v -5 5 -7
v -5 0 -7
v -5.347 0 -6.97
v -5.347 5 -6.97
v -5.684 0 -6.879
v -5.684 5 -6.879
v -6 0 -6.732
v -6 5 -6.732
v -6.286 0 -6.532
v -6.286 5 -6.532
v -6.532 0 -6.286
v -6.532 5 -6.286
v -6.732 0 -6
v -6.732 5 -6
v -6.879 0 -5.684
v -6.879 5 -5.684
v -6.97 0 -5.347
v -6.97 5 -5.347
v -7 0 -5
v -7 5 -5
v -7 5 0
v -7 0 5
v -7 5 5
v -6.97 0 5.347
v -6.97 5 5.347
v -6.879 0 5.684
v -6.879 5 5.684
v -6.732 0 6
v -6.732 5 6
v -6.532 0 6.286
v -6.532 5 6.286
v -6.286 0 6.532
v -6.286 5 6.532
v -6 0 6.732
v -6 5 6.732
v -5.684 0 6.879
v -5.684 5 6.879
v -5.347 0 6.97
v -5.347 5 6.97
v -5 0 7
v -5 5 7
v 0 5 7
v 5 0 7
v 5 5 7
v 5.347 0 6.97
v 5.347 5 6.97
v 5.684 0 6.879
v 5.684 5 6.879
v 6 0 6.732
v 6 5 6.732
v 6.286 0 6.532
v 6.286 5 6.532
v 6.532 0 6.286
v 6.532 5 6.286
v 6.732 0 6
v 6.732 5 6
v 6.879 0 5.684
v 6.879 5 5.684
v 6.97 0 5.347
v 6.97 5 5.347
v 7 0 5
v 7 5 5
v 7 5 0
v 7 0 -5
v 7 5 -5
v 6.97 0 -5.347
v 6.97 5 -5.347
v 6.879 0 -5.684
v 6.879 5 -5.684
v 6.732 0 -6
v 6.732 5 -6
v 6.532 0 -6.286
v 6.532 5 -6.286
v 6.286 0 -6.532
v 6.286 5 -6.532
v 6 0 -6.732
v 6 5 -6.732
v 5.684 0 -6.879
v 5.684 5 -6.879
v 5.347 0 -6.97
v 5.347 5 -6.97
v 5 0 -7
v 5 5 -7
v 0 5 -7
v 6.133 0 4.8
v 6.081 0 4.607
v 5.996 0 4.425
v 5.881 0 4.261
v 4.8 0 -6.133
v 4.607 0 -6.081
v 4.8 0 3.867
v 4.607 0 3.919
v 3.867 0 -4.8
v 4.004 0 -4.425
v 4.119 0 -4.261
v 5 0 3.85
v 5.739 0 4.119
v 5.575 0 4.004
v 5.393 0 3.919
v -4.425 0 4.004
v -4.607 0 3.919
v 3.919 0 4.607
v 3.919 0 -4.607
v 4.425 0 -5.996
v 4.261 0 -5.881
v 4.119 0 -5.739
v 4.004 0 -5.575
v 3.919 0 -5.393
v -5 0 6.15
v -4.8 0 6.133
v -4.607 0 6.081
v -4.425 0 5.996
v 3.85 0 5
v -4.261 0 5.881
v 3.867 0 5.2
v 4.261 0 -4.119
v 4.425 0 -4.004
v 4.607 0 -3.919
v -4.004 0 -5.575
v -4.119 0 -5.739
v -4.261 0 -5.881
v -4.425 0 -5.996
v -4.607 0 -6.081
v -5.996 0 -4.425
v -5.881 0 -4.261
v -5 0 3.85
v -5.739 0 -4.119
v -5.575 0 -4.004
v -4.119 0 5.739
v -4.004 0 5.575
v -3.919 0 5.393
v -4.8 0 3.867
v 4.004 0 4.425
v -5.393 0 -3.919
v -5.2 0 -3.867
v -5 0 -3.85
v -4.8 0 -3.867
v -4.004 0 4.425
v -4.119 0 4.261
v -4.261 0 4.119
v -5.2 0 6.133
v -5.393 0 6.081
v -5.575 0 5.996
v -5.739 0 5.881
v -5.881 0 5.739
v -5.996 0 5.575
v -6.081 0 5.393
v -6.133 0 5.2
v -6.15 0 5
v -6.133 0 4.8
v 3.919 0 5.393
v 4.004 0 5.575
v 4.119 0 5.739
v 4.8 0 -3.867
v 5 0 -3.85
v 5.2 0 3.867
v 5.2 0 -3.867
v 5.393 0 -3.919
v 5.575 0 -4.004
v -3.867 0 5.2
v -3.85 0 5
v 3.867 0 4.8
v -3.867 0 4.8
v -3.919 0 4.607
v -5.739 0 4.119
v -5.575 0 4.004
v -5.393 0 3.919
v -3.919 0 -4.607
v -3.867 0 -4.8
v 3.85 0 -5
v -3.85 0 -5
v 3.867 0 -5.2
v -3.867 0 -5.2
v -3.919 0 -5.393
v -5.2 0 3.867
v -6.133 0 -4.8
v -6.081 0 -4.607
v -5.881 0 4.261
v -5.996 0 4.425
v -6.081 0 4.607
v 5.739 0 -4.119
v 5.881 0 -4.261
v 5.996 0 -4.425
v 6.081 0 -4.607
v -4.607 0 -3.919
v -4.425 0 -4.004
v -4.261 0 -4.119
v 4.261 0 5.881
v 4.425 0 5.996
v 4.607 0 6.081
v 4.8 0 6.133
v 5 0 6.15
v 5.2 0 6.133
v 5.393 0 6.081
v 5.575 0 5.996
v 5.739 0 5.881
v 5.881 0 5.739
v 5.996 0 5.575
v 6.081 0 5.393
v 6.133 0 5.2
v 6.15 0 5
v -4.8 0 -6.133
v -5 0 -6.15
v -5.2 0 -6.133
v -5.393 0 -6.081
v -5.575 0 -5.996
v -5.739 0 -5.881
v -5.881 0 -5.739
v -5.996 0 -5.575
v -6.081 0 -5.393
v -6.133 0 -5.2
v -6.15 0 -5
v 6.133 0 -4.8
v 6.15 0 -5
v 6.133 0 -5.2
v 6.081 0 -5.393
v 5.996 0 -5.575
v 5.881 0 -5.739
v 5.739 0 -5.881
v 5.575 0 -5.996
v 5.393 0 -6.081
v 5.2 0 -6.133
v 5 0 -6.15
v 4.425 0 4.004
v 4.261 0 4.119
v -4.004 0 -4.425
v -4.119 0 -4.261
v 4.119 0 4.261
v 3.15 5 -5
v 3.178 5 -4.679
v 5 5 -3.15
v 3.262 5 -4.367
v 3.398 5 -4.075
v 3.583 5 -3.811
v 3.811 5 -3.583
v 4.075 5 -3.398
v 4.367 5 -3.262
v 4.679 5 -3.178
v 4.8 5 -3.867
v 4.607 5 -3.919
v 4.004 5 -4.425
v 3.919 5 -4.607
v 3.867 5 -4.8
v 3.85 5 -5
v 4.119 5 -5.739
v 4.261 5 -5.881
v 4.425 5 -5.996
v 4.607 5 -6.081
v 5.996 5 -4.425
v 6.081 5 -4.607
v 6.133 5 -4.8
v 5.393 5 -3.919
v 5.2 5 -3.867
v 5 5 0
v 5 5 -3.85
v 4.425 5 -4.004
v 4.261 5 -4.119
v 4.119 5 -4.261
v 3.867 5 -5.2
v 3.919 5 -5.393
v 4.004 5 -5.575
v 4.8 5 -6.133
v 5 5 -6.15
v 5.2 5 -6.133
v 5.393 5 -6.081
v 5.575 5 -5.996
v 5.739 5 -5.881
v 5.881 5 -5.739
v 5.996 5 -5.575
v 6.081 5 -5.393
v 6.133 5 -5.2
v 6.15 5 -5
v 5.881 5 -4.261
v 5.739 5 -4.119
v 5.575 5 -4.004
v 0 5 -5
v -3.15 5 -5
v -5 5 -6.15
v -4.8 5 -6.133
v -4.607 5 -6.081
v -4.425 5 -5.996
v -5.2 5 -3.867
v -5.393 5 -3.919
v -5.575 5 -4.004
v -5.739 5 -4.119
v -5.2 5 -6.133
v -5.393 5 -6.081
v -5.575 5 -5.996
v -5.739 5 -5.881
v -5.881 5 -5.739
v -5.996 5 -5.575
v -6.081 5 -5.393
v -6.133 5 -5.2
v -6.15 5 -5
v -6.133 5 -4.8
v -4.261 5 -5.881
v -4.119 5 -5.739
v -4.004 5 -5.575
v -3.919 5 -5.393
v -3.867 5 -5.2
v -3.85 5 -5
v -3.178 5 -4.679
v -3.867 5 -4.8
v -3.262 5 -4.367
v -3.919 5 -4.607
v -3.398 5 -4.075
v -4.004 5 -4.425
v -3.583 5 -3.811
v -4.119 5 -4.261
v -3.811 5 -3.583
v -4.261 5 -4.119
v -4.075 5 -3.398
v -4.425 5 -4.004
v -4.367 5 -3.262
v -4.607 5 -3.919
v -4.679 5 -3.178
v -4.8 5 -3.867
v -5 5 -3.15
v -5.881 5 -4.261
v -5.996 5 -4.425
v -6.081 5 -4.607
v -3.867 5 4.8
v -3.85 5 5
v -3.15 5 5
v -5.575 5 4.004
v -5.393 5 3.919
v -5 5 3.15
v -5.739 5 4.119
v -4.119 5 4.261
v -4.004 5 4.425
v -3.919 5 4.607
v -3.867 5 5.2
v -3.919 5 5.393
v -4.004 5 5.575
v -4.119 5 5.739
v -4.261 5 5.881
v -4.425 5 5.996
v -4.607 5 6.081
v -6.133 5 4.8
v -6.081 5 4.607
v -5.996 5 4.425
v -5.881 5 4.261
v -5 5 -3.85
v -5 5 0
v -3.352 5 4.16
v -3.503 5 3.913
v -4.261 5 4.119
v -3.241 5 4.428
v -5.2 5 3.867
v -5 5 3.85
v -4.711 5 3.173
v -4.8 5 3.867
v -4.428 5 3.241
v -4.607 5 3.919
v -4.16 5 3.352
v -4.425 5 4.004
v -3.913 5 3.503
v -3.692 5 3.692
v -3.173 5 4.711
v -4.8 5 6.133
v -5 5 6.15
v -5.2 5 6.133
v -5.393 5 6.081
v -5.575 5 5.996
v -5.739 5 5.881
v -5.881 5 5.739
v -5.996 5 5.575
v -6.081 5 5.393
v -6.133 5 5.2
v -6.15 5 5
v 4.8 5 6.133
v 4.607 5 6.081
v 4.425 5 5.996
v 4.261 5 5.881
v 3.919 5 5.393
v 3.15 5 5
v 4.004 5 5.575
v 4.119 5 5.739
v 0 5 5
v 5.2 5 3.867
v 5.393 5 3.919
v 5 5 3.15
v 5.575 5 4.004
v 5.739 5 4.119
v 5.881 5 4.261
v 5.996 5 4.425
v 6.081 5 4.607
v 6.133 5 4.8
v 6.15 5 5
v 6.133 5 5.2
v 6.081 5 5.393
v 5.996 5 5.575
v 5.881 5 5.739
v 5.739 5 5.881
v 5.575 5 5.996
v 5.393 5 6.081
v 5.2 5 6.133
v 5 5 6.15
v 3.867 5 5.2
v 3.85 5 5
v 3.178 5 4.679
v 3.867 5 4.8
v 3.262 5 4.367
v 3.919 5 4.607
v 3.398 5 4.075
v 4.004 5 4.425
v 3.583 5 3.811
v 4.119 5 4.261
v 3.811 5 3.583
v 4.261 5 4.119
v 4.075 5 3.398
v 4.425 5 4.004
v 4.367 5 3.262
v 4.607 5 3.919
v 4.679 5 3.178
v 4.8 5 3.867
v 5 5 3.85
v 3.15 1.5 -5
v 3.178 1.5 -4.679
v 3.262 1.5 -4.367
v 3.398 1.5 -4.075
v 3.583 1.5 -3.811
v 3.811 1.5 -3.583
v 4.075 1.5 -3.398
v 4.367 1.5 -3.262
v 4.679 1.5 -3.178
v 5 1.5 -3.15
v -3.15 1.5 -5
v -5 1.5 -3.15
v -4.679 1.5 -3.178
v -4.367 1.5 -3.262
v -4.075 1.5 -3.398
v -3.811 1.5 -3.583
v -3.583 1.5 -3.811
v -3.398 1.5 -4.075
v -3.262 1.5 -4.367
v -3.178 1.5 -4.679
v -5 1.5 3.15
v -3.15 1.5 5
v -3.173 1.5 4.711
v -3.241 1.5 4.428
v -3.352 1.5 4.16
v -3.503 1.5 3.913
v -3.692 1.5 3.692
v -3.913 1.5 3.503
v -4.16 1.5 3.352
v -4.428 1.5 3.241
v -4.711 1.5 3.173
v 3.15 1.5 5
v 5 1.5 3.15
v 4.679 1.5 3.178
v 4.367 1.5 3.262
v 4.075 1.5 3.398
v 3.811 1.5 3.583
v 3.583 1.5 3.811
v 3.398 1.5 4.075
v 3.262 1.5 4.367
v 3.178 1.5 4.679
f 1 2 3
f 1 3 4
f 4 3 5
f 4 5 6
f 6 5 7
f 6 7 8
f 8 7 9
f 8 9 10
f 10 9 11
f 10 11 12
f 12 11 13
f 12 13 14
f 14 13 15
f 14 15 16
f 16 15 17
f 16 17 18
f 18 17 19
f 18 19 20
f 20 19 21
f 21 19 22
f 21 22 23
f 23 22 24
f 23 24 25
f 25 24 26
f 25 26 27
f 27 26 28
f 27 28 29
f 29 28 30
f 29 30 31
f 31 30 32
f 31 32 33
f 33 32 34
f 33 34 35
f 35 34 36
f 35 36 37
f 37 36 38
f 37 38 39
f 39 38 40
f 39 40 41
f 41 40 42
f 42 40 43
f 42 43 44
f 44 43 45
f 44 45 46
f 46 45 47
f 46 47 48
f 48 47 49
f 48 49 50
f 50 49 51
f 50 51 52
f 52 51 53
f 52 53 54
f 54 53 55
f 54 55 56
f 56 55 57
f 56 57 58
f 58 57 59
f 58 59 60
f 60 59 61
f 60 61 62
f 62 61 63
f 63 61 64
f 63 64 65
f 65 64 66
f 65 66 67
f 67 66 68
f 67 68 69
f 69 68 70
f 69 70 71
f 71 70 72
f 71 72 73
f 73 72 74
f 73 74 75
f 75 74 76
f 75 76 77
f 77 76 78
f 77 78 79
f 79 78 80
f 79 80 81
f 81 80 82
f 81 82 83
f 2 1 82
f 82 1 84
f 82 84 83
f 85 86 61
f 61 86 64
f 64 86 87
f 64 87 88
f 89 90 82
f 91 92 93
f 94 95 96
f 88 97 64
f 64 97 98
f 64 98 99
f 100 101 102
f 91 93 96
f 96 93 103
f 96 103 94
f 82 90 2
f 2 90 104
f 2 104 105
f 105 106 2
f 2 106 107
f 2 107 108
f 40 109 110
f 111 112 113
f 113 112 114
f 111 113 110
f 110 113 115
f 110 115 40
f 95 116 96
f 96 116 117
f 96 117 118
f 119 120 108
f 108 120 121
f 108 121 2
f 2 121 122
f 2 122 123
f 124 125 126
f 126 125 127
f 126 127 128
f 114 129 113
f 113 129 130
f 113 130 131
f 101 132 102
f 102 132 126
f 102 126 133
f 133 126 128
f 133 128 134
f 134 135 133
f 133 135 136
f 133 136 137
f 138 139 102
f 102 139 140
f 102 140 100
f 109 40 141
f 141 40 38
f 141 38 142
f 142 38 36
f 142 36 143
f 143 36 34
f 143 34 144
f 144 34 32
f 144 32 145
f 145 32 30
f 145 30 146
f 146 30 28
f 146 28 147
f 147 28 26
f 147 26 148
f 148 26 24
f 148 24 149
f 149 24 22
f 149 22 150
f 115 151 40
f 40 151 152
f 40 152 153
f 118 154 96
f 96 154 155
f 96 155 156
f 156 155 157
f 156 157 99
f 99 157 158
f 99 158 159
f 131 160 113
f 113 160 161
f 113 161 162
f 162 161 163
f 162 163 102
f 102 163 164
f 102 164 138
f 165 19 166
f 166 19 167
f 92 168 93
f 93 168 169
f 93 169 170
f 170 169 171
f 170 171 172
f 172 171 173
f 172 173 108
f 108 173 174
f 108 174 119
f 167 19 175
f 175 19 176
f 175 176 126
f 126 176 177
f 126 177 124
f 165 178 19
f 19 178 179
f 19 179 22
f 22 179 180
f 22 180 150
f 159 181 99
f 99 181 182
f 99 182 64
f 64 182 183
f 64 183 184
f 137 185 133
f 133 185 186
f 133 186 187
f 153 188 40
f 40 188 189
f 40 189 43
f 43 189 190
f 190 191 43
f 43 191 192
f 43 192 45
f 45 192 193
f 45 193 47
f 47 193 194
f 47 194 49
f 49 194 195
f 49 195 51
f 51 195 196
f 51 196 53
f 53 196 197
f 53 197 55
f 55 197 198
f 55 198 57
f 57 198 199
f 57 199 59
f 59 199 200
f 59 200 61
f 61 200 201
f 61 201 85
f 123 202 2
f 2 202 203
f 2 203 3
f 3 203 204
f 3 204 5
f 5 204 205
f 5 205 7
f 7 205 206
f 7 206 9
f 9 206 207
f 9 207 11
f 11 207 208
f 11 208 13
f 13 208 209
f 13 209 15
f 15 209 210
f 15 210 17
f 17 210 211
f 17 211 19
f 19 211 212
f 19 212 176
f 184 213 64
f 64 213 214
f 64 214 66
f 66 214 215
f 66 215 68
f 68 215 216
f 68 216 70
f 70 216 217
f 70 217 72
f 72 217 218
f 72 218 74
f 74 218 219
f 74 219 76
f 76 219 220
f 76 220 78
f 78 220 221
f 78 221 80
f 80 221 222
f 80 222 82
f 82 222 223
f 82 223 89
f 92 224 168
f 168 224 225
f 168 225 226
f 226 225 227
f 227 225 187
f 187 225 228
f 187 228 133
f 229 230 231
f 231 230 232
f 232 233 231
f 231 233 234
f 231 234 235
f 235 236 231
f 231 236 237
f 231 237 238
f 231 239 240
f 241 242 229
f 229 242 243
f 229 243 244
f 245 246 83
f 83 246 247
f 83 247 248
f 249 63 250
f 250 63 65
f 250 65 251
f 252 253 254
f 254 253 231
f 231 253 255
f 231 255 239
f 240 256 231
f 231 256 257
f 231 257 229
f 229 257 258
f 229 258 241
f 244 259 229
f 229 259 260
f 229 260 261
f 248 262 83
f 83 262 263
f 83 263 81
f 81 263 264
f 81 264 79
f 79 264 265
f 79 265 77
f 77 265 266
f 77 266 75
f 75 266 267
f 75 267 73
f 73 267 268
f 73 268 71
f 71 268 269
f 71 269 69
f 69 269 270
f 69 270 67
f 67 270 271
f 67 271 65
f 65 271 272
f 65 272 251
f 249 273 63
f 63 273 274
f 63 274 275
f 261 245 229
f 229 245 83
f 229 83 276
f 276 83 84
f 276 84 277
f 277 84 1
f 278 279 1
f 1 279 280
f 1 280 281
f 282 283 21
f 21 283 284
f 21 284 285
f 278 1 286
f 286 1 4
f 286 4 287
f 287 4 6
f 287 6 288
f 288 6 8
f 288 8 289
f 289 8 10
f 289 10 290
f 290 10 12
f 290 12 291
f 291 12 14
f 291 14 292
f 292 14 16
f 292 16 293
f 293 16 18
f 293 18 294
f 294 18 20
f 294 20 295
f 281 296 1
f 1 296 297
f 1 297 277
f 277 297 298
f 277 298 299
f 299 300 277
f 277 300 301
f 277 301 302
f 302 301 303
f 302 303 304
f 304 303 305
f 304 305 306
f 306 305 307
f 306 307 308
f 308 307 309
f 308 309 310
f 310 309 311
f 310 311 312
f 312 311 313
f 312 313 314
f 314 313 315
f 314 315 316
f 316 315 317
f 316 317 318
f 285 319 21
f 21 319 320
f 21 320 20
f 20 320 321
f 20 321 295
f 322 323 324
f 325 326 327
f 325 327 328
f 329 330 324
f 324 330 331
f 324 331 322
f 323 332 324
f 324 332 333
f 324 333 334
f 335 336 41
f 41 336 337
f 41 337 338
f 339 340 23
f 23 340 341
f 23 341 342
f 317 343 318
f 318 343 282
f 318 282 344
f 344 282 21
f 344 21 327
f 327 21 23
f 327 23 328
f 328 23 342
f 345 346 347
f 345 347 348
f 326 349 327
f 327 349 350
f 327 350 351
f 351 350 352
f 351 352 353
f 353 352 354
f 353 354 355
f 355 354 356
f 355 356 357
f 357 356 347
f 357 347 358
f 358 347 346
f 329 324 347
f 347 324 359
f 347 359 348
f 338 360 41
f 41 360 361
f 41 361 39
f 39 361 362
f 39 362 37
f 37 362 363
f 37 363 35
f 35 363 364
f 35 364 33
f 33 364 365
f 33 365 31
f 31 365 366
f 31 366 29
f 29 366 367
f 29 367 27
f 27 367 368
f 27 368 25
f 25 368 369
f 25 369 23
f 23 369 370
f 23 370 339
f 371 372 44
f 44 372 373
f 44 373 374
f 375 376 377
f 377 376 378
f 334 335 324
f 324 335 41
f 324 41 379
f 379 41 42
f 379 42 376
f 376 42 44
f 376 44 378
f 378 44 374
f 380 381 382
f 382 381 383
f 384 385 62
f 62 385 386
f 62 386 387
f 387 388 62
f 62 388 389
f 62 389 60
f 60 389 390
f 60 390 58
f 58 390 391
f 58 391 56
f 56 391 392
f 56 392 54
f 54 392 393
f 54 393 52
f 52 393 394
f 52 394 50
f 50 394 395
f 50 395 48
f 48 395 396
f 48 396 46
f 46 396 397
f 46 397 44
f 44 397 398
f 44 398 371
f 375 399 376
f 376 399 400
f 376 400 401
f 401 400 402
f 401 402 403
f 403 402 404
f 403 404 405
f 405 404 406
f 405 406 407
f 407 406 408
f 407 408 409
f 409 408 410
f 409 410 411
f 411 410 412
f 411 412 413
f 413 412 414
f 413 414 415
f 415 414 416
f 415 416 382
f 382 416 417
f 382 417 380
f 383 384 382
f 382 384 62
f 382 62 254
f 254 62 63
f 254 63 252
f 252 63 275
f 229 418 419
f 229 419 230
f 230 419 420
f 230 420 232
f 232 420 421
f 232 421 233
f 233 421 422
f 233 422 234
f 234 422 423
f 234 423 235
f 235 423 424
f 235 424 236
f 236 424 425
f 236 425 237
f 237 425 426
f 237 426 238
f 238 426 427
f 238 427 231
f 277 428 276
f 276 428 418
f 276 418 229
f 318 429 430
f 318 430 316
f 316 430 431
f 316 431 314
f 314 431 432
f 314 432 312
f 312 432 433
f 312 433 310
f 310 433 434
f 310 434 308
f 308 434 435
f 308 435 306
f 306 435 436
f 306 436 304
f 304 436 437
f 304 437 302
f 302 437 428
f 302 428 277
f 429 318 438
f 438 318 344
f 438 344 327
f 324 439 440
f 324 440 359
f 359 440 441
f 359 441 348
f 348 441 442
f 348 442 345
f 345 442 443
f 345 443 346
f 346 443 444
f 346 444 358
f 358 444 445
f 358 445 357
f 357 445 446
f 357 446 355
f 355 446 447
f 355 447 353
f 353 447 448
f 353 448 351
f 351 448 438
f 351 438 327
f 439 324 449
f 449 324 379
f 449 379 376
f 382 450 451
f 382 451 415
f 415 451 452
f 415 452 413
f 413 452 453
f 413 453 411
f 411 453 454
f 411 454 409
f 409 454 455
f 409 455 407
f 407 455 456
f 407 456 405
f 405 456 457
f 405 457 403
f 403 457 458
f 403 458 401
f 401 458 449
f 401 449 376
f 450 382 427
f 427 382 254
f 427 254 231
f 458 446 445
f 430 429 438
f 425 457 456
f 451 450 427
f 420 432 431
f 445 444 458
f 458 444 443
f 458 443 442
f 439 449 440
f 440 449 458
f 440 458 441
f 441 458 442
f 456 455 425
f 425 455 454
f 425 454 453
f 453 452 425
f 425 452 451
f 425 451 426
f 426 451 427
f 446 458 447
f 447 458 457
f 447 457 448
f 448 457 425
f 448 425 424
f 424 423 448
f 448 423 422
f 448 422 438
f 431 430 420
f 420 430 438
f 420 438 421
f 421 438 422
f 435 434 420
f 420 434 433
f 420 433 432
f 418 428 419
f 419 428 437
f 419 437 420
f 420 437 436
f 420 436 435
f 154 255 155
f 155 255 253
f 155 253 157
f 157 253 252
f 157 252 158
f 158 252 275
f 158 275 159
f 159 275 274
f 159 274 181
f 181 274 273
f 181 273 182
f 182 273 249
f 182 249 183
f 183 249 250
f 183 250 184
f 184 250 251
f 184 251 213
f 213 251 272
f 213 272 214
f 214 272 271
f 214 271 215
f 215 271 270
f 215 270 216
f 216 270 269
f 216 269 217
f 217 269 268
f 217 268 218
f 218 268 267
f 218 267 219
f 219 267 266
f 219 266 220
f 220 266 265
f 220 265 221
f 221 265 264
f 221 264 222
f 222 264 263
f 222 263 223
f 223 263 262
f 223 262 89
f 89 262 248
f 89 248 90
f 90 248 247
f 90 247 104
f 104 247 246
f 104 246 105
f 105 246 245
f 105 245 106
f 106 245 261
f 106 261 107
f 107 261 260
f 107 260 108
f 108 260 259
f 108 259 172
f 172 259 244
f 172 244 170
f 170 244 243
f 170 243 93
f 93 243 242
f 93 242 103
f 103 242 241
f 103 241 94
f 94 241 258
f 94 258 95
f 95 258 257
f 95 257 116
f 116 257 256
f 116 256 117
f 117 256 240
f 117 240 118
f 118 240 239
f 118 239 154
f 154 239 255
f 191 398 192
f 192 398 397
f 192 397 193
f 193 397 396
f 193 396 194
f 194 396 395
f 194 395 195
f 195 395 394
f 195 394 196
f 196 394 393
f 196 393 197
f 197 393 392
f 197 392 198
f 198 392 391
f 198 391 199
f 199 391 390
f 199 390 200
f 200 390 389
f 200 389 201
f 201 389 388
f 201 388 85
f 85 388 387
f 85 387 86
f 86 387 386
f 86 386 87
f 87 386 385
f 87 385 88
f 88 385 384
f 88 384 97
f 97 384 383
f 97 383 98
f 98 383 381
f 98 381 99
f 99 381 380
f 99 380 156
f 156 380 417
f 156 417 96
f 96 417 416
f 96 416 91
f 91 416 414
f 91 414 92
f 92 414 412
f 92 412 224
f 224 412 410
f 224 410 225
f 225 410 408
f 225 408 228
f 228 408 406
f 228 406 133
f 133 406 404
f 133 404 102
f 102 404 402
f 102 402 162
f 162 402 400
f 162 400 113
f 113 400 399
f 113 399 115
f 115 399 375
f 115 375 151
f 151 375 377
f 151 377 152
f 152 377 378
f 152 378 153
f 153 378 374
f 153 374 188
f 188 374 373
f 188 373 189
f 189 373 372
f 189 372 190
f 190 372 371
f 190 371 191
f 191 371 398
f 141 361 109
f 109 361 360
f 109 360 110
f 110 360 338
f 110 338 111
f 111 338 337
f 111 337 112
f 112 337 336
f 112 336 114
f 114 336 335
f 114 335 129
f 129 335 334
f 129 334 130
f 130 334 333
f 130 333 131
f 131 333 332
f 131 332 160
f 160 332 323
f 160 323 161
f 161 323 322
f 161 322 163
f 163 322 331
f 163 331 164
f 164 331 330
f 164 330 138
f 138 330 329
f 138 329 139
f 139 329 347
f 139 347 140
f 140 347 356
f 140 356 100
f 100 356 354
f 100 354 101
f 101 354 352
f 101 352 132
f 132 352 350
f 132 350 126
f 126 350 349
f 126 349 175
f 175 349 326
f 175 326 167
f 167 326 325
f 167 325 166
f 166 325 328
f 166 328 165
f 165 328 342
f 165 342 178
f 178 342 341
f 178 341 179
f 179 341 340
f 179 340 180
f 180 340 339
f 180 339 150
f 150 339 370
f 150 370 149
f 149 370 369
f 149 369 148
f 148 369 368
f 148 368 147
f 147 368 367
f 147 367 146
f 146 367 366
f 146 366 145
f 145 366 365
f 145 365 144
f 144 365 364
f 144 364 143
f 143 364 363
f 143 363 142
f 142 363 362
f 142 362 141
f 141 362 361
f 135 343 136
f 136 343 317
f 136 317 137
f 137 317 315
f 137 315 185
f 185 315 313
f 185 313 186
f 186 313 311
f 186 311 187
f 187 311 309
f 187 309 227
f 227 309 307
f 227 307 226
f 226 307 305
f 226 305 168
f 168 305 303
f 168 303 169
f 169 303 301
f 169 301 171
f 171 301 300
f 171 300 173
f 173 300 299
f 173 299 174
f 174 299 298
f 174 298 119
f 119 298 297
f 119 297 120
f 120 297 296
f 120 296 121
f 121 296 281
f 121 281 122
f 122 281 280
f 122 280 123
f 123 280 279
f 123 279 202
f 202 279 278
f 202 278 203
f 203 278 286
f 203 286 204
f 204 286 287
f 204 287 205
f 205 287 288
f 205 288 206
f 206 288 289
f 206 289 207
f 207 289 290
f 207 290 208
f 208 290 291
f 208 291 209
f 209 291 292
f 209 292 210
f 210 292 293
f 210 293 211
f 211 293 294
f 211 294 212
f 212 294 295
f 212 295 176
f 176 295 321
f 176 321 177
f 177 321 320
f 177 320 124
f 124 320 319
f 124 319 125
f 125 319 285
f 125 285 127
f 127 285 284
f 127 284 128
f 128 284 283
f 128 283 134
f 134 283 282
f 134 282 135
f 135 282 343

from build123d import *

# Parameters (mm, degrees)
BOSS_EXTRUDE1_DEPTH = 1.5
BOSS_EXTRUDE2_DEPTH = 3.5
SKETCH3_R           = 1.15
CUT_EXTRUDE1_DEPTH  = 12.090536506


with BuildPart() as part:
    # Sketch1 → Boss-Extrude1 (new body)
    with BuildSketch(Plane(origin=(0, 0, 0), x_dir=(1, 0, 0), z_dir=(0, 1, 0))):
        with BuildLine():
            Line((0, 7), (5, 7))
            ThreePointArc((5, 7), (6.414213562, 6.414213562), (7, 5))
            Line((7, 5), (7, 0))
            Line((7, 0), (7, -5))
            ThreePointArc((7, -5), (6.414213562, -6.414213562), (5, -7))
            Line((5, -7), (0, -7))
            Line((0, -7), (-5, -7))
            ThreePointArc((-5, -7), (-6.414213562, -6.414213562), (-7, -5))
            Line((-7, -5), (-7, 0))
            Line((-7, 0), (-7, 5))
            ThreePointArc((-7, 5), (-6.414213562, 6.414213562), (-5, 7))
            Line((-5, 7), (0, 7))
        make_face()
    extrude(amount=BOSS_EXTRUDE1_DEPTH)

    # Sketch2 → Boss-Extrude2 (add)
    with BuildSketch(Plane(origin=(0, 1.5, 0), x_dir=(1, 0, 0), z_dir=(0, 1, 0))):
        with BuildLine():
            Line((0, 7), (5, 7))
            ThreePointArc((5, 7), (6.414213562, 6.414213562), (7, 5))
            Line((7, 5), (7, 0))
            Line((7, 0), (7, -5))
            ThreePointArc((7, -5), (6.414213562, -6.414213562), (5, -7))
            Line((5, -7), (0, -7))
            Line((0, -7), (-5, -7))
            ThreePointArc((-5, -7), (-6.414213562, -6.414213562), (-7, -5))
            Line((-7, -5), (-7, 0))
            Line((-7, 0), (-7, 5))
            ThreePointArc((-7, 5), (-6.414213562, 6.414213562), (-5, 7))
            Line((-5, 7), (0, 7))
        make_face()
        with BuildLine():
            Line((0, 5), (3.15, 5))
            ThreePointArc((3.15, 5), (3.691852455, 3.691852455), (5, 3.15))
            Line((5, 3.15), (5, 0))
            Line((5, 0), (5, -3.15))
            ThreePointArc((5, -3.15), (3.691852455, -3.691852455), (3.15, -5))
            Line((3.15, -5), (0, -5))
            Line((0, -5), (-3.15, -5))
            ThreePointArc((-3.15, -5), (-3.691852455, -3.691852455), (-5, -3.15))
            Line((-5, -3.15), (-5, 0))
            Line((-5, 0), (-5, 3.15))
            ThreePointArc((-5, 3.15), (-3.691852455, 3.691852455), (-3.15, 5))
            Line((-3.15, 5), (0, 5))
        make_face(mode=Mode.SUBTRACT)
    extrude(amount=BOSS_EXTRUDE2_DEPTH)

    # Sketch3 → Cut-Extrude1 (cut, through all)
    with BuildSketch(Plane(origin=(0, 5, 0), x_dir=(1, 0, 0), z_dir=(0, 1, 0))):
        with Locations(Location((5, 5, 0), (0, 0, 270))):
            Circle(SKETCH3_R)
        with Locations(Location((5, -5, 0), (0, 0, 270))):
            Circle(SKETCH3_R)
        with Locations(Location((-5, -5, 0), (0, 0, 270))):
            Circle(SKETCH3_R)
        with Locations(Location((-5, 5, 0), (0, 0, 270))):
            Circle(SKETCH3_R)
    extrude(amount=-CUT_EXTRUDE1_DEPTH, mode=Mode.SUBTRACT)


solid = part.part
